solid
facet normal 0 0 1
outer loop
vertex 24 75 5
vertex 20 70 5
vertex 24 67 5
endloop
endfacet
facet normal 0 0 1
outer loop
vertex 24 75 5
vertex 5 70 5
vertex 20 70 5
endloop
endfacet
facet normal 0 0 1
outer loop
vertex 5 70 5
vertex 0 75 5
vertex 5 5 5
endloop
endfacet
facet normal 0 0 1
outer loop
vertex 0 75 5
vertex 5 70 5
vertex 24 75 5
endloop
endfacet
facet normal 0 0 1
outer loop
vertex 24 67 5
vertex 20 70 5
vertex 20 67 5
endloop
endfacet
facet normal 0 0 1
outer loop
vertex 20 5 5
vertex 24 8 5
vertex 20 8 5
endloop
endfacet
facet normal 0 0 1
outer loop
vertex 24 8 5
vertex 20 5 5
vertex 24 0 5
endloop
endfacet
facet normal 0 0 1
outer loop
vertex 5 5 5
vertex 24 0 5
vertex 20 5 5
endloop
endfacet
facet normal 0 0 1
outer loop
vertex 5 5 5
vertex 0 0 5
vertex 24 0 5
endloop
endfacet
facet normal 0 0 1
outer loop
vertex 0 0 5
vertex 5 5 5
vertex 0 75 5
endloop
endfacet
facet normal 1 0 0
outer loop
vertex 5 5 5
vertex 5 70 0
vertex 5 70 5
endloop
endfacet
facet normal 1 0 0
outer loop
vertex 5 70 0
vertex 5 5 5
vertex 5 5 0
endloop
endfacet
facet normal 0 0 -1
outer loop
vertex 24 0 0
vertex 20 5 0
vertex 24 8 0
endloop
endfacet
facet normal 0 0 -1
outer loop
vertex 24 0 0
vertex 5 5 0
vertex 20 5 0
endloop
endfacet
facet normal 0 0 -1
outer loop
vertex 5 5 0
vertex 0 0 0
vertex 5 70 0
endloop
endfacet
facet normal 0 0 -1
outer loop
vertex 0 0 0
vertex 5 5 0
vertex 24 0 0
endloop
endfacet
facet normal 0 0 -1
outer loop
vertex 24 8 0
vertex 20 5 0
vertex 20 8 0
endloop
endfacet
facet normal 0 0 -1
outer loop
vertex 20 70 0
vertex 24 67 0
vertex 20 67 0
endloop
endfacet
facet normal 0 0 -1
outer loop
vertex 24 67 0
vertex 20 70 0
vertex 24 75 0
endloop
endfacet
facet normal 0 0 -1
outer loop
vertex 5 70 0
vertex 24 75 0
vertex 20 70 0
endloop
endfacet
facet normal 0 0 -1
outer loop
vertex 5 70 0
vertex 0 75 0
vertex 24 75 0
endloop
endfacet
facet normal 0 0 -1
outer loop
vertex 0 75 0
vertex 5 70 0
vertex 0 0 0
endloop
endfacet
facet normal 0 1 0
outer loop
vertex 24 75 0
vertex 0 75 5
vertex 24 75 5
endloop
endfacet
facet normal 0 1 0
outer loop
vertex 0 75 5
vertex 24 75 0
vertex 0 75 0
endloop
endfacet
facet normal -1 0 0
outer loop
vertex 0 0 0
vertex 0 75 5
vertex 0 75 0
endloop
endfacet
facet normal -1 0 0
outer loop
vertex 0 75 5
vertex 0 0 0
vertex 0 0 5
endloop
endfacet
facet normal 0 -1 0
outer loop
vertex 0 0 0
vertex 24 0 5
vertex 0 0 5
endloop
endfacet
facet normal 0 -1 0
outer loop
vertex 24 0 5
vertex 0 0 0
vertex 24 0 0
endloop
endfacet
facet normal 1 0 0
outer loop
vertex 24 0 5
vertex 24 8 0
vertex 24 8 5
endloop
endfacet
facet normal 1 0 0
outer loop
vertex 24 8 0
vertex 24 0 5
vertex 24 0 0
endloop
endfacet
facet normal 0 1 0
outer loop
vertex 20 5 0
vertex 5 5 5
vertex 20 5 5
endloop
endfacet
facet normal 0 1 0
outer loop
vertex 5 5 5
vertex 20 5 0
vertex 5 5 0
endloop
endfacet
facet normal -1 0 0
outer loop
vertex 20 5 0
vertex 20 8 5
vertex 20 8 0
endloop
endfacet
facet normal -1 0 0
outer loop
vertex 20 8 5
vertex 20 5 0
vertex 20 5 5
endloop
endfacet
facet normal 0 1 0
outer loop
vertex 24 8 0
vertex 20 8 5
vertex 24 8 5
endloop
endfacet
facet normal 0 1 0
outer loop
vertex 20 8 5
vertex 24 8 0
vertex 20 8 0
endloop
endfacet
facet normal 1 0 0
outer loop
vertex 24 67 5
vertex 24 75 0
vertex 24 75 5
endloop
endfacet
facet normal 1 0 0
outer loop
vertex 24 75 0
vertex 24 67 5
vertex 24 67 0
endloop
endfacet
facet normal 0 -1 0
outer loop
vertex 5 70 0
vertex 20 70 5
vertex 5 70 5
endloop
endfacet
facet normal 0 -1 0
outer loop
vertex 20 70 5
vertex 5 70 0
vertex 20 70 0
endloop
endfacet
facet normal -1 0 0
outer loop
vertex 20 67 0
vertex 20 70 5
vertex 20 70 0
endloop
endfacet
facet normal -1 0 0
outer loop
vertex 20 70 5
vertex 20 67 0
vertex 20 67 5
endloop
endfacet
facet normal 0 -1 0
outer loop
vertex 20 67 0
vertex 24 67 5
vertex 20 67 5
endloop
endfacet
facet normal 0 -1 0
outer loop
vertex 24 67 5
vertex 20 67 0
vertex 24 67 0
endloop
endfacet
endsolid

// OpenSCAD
width=5;
length=65;
height=15;
thickness=5;

holder_thickness=4;
holder_length=3;


module arm(){
	cube([width,thickness,height+holder_thickness+1]);
}
module holder(){
	cube([width,holder_length+1,holder_thickness]);
}


module psa1_clamp_holder(){
	cube([width,length+2*thickness,thickness]);

	translate([0,0,thickness-1])arm();
	translate([0,thickness-1,thickness+height])holder();

	translate([0,length+thickness,thickness-1])arm();
	translate([0,length+thickness-holder_length,thickness+height])holder();
}

translate([0,0,width])rotate([0,90,0])psa1_clamp_holder();
